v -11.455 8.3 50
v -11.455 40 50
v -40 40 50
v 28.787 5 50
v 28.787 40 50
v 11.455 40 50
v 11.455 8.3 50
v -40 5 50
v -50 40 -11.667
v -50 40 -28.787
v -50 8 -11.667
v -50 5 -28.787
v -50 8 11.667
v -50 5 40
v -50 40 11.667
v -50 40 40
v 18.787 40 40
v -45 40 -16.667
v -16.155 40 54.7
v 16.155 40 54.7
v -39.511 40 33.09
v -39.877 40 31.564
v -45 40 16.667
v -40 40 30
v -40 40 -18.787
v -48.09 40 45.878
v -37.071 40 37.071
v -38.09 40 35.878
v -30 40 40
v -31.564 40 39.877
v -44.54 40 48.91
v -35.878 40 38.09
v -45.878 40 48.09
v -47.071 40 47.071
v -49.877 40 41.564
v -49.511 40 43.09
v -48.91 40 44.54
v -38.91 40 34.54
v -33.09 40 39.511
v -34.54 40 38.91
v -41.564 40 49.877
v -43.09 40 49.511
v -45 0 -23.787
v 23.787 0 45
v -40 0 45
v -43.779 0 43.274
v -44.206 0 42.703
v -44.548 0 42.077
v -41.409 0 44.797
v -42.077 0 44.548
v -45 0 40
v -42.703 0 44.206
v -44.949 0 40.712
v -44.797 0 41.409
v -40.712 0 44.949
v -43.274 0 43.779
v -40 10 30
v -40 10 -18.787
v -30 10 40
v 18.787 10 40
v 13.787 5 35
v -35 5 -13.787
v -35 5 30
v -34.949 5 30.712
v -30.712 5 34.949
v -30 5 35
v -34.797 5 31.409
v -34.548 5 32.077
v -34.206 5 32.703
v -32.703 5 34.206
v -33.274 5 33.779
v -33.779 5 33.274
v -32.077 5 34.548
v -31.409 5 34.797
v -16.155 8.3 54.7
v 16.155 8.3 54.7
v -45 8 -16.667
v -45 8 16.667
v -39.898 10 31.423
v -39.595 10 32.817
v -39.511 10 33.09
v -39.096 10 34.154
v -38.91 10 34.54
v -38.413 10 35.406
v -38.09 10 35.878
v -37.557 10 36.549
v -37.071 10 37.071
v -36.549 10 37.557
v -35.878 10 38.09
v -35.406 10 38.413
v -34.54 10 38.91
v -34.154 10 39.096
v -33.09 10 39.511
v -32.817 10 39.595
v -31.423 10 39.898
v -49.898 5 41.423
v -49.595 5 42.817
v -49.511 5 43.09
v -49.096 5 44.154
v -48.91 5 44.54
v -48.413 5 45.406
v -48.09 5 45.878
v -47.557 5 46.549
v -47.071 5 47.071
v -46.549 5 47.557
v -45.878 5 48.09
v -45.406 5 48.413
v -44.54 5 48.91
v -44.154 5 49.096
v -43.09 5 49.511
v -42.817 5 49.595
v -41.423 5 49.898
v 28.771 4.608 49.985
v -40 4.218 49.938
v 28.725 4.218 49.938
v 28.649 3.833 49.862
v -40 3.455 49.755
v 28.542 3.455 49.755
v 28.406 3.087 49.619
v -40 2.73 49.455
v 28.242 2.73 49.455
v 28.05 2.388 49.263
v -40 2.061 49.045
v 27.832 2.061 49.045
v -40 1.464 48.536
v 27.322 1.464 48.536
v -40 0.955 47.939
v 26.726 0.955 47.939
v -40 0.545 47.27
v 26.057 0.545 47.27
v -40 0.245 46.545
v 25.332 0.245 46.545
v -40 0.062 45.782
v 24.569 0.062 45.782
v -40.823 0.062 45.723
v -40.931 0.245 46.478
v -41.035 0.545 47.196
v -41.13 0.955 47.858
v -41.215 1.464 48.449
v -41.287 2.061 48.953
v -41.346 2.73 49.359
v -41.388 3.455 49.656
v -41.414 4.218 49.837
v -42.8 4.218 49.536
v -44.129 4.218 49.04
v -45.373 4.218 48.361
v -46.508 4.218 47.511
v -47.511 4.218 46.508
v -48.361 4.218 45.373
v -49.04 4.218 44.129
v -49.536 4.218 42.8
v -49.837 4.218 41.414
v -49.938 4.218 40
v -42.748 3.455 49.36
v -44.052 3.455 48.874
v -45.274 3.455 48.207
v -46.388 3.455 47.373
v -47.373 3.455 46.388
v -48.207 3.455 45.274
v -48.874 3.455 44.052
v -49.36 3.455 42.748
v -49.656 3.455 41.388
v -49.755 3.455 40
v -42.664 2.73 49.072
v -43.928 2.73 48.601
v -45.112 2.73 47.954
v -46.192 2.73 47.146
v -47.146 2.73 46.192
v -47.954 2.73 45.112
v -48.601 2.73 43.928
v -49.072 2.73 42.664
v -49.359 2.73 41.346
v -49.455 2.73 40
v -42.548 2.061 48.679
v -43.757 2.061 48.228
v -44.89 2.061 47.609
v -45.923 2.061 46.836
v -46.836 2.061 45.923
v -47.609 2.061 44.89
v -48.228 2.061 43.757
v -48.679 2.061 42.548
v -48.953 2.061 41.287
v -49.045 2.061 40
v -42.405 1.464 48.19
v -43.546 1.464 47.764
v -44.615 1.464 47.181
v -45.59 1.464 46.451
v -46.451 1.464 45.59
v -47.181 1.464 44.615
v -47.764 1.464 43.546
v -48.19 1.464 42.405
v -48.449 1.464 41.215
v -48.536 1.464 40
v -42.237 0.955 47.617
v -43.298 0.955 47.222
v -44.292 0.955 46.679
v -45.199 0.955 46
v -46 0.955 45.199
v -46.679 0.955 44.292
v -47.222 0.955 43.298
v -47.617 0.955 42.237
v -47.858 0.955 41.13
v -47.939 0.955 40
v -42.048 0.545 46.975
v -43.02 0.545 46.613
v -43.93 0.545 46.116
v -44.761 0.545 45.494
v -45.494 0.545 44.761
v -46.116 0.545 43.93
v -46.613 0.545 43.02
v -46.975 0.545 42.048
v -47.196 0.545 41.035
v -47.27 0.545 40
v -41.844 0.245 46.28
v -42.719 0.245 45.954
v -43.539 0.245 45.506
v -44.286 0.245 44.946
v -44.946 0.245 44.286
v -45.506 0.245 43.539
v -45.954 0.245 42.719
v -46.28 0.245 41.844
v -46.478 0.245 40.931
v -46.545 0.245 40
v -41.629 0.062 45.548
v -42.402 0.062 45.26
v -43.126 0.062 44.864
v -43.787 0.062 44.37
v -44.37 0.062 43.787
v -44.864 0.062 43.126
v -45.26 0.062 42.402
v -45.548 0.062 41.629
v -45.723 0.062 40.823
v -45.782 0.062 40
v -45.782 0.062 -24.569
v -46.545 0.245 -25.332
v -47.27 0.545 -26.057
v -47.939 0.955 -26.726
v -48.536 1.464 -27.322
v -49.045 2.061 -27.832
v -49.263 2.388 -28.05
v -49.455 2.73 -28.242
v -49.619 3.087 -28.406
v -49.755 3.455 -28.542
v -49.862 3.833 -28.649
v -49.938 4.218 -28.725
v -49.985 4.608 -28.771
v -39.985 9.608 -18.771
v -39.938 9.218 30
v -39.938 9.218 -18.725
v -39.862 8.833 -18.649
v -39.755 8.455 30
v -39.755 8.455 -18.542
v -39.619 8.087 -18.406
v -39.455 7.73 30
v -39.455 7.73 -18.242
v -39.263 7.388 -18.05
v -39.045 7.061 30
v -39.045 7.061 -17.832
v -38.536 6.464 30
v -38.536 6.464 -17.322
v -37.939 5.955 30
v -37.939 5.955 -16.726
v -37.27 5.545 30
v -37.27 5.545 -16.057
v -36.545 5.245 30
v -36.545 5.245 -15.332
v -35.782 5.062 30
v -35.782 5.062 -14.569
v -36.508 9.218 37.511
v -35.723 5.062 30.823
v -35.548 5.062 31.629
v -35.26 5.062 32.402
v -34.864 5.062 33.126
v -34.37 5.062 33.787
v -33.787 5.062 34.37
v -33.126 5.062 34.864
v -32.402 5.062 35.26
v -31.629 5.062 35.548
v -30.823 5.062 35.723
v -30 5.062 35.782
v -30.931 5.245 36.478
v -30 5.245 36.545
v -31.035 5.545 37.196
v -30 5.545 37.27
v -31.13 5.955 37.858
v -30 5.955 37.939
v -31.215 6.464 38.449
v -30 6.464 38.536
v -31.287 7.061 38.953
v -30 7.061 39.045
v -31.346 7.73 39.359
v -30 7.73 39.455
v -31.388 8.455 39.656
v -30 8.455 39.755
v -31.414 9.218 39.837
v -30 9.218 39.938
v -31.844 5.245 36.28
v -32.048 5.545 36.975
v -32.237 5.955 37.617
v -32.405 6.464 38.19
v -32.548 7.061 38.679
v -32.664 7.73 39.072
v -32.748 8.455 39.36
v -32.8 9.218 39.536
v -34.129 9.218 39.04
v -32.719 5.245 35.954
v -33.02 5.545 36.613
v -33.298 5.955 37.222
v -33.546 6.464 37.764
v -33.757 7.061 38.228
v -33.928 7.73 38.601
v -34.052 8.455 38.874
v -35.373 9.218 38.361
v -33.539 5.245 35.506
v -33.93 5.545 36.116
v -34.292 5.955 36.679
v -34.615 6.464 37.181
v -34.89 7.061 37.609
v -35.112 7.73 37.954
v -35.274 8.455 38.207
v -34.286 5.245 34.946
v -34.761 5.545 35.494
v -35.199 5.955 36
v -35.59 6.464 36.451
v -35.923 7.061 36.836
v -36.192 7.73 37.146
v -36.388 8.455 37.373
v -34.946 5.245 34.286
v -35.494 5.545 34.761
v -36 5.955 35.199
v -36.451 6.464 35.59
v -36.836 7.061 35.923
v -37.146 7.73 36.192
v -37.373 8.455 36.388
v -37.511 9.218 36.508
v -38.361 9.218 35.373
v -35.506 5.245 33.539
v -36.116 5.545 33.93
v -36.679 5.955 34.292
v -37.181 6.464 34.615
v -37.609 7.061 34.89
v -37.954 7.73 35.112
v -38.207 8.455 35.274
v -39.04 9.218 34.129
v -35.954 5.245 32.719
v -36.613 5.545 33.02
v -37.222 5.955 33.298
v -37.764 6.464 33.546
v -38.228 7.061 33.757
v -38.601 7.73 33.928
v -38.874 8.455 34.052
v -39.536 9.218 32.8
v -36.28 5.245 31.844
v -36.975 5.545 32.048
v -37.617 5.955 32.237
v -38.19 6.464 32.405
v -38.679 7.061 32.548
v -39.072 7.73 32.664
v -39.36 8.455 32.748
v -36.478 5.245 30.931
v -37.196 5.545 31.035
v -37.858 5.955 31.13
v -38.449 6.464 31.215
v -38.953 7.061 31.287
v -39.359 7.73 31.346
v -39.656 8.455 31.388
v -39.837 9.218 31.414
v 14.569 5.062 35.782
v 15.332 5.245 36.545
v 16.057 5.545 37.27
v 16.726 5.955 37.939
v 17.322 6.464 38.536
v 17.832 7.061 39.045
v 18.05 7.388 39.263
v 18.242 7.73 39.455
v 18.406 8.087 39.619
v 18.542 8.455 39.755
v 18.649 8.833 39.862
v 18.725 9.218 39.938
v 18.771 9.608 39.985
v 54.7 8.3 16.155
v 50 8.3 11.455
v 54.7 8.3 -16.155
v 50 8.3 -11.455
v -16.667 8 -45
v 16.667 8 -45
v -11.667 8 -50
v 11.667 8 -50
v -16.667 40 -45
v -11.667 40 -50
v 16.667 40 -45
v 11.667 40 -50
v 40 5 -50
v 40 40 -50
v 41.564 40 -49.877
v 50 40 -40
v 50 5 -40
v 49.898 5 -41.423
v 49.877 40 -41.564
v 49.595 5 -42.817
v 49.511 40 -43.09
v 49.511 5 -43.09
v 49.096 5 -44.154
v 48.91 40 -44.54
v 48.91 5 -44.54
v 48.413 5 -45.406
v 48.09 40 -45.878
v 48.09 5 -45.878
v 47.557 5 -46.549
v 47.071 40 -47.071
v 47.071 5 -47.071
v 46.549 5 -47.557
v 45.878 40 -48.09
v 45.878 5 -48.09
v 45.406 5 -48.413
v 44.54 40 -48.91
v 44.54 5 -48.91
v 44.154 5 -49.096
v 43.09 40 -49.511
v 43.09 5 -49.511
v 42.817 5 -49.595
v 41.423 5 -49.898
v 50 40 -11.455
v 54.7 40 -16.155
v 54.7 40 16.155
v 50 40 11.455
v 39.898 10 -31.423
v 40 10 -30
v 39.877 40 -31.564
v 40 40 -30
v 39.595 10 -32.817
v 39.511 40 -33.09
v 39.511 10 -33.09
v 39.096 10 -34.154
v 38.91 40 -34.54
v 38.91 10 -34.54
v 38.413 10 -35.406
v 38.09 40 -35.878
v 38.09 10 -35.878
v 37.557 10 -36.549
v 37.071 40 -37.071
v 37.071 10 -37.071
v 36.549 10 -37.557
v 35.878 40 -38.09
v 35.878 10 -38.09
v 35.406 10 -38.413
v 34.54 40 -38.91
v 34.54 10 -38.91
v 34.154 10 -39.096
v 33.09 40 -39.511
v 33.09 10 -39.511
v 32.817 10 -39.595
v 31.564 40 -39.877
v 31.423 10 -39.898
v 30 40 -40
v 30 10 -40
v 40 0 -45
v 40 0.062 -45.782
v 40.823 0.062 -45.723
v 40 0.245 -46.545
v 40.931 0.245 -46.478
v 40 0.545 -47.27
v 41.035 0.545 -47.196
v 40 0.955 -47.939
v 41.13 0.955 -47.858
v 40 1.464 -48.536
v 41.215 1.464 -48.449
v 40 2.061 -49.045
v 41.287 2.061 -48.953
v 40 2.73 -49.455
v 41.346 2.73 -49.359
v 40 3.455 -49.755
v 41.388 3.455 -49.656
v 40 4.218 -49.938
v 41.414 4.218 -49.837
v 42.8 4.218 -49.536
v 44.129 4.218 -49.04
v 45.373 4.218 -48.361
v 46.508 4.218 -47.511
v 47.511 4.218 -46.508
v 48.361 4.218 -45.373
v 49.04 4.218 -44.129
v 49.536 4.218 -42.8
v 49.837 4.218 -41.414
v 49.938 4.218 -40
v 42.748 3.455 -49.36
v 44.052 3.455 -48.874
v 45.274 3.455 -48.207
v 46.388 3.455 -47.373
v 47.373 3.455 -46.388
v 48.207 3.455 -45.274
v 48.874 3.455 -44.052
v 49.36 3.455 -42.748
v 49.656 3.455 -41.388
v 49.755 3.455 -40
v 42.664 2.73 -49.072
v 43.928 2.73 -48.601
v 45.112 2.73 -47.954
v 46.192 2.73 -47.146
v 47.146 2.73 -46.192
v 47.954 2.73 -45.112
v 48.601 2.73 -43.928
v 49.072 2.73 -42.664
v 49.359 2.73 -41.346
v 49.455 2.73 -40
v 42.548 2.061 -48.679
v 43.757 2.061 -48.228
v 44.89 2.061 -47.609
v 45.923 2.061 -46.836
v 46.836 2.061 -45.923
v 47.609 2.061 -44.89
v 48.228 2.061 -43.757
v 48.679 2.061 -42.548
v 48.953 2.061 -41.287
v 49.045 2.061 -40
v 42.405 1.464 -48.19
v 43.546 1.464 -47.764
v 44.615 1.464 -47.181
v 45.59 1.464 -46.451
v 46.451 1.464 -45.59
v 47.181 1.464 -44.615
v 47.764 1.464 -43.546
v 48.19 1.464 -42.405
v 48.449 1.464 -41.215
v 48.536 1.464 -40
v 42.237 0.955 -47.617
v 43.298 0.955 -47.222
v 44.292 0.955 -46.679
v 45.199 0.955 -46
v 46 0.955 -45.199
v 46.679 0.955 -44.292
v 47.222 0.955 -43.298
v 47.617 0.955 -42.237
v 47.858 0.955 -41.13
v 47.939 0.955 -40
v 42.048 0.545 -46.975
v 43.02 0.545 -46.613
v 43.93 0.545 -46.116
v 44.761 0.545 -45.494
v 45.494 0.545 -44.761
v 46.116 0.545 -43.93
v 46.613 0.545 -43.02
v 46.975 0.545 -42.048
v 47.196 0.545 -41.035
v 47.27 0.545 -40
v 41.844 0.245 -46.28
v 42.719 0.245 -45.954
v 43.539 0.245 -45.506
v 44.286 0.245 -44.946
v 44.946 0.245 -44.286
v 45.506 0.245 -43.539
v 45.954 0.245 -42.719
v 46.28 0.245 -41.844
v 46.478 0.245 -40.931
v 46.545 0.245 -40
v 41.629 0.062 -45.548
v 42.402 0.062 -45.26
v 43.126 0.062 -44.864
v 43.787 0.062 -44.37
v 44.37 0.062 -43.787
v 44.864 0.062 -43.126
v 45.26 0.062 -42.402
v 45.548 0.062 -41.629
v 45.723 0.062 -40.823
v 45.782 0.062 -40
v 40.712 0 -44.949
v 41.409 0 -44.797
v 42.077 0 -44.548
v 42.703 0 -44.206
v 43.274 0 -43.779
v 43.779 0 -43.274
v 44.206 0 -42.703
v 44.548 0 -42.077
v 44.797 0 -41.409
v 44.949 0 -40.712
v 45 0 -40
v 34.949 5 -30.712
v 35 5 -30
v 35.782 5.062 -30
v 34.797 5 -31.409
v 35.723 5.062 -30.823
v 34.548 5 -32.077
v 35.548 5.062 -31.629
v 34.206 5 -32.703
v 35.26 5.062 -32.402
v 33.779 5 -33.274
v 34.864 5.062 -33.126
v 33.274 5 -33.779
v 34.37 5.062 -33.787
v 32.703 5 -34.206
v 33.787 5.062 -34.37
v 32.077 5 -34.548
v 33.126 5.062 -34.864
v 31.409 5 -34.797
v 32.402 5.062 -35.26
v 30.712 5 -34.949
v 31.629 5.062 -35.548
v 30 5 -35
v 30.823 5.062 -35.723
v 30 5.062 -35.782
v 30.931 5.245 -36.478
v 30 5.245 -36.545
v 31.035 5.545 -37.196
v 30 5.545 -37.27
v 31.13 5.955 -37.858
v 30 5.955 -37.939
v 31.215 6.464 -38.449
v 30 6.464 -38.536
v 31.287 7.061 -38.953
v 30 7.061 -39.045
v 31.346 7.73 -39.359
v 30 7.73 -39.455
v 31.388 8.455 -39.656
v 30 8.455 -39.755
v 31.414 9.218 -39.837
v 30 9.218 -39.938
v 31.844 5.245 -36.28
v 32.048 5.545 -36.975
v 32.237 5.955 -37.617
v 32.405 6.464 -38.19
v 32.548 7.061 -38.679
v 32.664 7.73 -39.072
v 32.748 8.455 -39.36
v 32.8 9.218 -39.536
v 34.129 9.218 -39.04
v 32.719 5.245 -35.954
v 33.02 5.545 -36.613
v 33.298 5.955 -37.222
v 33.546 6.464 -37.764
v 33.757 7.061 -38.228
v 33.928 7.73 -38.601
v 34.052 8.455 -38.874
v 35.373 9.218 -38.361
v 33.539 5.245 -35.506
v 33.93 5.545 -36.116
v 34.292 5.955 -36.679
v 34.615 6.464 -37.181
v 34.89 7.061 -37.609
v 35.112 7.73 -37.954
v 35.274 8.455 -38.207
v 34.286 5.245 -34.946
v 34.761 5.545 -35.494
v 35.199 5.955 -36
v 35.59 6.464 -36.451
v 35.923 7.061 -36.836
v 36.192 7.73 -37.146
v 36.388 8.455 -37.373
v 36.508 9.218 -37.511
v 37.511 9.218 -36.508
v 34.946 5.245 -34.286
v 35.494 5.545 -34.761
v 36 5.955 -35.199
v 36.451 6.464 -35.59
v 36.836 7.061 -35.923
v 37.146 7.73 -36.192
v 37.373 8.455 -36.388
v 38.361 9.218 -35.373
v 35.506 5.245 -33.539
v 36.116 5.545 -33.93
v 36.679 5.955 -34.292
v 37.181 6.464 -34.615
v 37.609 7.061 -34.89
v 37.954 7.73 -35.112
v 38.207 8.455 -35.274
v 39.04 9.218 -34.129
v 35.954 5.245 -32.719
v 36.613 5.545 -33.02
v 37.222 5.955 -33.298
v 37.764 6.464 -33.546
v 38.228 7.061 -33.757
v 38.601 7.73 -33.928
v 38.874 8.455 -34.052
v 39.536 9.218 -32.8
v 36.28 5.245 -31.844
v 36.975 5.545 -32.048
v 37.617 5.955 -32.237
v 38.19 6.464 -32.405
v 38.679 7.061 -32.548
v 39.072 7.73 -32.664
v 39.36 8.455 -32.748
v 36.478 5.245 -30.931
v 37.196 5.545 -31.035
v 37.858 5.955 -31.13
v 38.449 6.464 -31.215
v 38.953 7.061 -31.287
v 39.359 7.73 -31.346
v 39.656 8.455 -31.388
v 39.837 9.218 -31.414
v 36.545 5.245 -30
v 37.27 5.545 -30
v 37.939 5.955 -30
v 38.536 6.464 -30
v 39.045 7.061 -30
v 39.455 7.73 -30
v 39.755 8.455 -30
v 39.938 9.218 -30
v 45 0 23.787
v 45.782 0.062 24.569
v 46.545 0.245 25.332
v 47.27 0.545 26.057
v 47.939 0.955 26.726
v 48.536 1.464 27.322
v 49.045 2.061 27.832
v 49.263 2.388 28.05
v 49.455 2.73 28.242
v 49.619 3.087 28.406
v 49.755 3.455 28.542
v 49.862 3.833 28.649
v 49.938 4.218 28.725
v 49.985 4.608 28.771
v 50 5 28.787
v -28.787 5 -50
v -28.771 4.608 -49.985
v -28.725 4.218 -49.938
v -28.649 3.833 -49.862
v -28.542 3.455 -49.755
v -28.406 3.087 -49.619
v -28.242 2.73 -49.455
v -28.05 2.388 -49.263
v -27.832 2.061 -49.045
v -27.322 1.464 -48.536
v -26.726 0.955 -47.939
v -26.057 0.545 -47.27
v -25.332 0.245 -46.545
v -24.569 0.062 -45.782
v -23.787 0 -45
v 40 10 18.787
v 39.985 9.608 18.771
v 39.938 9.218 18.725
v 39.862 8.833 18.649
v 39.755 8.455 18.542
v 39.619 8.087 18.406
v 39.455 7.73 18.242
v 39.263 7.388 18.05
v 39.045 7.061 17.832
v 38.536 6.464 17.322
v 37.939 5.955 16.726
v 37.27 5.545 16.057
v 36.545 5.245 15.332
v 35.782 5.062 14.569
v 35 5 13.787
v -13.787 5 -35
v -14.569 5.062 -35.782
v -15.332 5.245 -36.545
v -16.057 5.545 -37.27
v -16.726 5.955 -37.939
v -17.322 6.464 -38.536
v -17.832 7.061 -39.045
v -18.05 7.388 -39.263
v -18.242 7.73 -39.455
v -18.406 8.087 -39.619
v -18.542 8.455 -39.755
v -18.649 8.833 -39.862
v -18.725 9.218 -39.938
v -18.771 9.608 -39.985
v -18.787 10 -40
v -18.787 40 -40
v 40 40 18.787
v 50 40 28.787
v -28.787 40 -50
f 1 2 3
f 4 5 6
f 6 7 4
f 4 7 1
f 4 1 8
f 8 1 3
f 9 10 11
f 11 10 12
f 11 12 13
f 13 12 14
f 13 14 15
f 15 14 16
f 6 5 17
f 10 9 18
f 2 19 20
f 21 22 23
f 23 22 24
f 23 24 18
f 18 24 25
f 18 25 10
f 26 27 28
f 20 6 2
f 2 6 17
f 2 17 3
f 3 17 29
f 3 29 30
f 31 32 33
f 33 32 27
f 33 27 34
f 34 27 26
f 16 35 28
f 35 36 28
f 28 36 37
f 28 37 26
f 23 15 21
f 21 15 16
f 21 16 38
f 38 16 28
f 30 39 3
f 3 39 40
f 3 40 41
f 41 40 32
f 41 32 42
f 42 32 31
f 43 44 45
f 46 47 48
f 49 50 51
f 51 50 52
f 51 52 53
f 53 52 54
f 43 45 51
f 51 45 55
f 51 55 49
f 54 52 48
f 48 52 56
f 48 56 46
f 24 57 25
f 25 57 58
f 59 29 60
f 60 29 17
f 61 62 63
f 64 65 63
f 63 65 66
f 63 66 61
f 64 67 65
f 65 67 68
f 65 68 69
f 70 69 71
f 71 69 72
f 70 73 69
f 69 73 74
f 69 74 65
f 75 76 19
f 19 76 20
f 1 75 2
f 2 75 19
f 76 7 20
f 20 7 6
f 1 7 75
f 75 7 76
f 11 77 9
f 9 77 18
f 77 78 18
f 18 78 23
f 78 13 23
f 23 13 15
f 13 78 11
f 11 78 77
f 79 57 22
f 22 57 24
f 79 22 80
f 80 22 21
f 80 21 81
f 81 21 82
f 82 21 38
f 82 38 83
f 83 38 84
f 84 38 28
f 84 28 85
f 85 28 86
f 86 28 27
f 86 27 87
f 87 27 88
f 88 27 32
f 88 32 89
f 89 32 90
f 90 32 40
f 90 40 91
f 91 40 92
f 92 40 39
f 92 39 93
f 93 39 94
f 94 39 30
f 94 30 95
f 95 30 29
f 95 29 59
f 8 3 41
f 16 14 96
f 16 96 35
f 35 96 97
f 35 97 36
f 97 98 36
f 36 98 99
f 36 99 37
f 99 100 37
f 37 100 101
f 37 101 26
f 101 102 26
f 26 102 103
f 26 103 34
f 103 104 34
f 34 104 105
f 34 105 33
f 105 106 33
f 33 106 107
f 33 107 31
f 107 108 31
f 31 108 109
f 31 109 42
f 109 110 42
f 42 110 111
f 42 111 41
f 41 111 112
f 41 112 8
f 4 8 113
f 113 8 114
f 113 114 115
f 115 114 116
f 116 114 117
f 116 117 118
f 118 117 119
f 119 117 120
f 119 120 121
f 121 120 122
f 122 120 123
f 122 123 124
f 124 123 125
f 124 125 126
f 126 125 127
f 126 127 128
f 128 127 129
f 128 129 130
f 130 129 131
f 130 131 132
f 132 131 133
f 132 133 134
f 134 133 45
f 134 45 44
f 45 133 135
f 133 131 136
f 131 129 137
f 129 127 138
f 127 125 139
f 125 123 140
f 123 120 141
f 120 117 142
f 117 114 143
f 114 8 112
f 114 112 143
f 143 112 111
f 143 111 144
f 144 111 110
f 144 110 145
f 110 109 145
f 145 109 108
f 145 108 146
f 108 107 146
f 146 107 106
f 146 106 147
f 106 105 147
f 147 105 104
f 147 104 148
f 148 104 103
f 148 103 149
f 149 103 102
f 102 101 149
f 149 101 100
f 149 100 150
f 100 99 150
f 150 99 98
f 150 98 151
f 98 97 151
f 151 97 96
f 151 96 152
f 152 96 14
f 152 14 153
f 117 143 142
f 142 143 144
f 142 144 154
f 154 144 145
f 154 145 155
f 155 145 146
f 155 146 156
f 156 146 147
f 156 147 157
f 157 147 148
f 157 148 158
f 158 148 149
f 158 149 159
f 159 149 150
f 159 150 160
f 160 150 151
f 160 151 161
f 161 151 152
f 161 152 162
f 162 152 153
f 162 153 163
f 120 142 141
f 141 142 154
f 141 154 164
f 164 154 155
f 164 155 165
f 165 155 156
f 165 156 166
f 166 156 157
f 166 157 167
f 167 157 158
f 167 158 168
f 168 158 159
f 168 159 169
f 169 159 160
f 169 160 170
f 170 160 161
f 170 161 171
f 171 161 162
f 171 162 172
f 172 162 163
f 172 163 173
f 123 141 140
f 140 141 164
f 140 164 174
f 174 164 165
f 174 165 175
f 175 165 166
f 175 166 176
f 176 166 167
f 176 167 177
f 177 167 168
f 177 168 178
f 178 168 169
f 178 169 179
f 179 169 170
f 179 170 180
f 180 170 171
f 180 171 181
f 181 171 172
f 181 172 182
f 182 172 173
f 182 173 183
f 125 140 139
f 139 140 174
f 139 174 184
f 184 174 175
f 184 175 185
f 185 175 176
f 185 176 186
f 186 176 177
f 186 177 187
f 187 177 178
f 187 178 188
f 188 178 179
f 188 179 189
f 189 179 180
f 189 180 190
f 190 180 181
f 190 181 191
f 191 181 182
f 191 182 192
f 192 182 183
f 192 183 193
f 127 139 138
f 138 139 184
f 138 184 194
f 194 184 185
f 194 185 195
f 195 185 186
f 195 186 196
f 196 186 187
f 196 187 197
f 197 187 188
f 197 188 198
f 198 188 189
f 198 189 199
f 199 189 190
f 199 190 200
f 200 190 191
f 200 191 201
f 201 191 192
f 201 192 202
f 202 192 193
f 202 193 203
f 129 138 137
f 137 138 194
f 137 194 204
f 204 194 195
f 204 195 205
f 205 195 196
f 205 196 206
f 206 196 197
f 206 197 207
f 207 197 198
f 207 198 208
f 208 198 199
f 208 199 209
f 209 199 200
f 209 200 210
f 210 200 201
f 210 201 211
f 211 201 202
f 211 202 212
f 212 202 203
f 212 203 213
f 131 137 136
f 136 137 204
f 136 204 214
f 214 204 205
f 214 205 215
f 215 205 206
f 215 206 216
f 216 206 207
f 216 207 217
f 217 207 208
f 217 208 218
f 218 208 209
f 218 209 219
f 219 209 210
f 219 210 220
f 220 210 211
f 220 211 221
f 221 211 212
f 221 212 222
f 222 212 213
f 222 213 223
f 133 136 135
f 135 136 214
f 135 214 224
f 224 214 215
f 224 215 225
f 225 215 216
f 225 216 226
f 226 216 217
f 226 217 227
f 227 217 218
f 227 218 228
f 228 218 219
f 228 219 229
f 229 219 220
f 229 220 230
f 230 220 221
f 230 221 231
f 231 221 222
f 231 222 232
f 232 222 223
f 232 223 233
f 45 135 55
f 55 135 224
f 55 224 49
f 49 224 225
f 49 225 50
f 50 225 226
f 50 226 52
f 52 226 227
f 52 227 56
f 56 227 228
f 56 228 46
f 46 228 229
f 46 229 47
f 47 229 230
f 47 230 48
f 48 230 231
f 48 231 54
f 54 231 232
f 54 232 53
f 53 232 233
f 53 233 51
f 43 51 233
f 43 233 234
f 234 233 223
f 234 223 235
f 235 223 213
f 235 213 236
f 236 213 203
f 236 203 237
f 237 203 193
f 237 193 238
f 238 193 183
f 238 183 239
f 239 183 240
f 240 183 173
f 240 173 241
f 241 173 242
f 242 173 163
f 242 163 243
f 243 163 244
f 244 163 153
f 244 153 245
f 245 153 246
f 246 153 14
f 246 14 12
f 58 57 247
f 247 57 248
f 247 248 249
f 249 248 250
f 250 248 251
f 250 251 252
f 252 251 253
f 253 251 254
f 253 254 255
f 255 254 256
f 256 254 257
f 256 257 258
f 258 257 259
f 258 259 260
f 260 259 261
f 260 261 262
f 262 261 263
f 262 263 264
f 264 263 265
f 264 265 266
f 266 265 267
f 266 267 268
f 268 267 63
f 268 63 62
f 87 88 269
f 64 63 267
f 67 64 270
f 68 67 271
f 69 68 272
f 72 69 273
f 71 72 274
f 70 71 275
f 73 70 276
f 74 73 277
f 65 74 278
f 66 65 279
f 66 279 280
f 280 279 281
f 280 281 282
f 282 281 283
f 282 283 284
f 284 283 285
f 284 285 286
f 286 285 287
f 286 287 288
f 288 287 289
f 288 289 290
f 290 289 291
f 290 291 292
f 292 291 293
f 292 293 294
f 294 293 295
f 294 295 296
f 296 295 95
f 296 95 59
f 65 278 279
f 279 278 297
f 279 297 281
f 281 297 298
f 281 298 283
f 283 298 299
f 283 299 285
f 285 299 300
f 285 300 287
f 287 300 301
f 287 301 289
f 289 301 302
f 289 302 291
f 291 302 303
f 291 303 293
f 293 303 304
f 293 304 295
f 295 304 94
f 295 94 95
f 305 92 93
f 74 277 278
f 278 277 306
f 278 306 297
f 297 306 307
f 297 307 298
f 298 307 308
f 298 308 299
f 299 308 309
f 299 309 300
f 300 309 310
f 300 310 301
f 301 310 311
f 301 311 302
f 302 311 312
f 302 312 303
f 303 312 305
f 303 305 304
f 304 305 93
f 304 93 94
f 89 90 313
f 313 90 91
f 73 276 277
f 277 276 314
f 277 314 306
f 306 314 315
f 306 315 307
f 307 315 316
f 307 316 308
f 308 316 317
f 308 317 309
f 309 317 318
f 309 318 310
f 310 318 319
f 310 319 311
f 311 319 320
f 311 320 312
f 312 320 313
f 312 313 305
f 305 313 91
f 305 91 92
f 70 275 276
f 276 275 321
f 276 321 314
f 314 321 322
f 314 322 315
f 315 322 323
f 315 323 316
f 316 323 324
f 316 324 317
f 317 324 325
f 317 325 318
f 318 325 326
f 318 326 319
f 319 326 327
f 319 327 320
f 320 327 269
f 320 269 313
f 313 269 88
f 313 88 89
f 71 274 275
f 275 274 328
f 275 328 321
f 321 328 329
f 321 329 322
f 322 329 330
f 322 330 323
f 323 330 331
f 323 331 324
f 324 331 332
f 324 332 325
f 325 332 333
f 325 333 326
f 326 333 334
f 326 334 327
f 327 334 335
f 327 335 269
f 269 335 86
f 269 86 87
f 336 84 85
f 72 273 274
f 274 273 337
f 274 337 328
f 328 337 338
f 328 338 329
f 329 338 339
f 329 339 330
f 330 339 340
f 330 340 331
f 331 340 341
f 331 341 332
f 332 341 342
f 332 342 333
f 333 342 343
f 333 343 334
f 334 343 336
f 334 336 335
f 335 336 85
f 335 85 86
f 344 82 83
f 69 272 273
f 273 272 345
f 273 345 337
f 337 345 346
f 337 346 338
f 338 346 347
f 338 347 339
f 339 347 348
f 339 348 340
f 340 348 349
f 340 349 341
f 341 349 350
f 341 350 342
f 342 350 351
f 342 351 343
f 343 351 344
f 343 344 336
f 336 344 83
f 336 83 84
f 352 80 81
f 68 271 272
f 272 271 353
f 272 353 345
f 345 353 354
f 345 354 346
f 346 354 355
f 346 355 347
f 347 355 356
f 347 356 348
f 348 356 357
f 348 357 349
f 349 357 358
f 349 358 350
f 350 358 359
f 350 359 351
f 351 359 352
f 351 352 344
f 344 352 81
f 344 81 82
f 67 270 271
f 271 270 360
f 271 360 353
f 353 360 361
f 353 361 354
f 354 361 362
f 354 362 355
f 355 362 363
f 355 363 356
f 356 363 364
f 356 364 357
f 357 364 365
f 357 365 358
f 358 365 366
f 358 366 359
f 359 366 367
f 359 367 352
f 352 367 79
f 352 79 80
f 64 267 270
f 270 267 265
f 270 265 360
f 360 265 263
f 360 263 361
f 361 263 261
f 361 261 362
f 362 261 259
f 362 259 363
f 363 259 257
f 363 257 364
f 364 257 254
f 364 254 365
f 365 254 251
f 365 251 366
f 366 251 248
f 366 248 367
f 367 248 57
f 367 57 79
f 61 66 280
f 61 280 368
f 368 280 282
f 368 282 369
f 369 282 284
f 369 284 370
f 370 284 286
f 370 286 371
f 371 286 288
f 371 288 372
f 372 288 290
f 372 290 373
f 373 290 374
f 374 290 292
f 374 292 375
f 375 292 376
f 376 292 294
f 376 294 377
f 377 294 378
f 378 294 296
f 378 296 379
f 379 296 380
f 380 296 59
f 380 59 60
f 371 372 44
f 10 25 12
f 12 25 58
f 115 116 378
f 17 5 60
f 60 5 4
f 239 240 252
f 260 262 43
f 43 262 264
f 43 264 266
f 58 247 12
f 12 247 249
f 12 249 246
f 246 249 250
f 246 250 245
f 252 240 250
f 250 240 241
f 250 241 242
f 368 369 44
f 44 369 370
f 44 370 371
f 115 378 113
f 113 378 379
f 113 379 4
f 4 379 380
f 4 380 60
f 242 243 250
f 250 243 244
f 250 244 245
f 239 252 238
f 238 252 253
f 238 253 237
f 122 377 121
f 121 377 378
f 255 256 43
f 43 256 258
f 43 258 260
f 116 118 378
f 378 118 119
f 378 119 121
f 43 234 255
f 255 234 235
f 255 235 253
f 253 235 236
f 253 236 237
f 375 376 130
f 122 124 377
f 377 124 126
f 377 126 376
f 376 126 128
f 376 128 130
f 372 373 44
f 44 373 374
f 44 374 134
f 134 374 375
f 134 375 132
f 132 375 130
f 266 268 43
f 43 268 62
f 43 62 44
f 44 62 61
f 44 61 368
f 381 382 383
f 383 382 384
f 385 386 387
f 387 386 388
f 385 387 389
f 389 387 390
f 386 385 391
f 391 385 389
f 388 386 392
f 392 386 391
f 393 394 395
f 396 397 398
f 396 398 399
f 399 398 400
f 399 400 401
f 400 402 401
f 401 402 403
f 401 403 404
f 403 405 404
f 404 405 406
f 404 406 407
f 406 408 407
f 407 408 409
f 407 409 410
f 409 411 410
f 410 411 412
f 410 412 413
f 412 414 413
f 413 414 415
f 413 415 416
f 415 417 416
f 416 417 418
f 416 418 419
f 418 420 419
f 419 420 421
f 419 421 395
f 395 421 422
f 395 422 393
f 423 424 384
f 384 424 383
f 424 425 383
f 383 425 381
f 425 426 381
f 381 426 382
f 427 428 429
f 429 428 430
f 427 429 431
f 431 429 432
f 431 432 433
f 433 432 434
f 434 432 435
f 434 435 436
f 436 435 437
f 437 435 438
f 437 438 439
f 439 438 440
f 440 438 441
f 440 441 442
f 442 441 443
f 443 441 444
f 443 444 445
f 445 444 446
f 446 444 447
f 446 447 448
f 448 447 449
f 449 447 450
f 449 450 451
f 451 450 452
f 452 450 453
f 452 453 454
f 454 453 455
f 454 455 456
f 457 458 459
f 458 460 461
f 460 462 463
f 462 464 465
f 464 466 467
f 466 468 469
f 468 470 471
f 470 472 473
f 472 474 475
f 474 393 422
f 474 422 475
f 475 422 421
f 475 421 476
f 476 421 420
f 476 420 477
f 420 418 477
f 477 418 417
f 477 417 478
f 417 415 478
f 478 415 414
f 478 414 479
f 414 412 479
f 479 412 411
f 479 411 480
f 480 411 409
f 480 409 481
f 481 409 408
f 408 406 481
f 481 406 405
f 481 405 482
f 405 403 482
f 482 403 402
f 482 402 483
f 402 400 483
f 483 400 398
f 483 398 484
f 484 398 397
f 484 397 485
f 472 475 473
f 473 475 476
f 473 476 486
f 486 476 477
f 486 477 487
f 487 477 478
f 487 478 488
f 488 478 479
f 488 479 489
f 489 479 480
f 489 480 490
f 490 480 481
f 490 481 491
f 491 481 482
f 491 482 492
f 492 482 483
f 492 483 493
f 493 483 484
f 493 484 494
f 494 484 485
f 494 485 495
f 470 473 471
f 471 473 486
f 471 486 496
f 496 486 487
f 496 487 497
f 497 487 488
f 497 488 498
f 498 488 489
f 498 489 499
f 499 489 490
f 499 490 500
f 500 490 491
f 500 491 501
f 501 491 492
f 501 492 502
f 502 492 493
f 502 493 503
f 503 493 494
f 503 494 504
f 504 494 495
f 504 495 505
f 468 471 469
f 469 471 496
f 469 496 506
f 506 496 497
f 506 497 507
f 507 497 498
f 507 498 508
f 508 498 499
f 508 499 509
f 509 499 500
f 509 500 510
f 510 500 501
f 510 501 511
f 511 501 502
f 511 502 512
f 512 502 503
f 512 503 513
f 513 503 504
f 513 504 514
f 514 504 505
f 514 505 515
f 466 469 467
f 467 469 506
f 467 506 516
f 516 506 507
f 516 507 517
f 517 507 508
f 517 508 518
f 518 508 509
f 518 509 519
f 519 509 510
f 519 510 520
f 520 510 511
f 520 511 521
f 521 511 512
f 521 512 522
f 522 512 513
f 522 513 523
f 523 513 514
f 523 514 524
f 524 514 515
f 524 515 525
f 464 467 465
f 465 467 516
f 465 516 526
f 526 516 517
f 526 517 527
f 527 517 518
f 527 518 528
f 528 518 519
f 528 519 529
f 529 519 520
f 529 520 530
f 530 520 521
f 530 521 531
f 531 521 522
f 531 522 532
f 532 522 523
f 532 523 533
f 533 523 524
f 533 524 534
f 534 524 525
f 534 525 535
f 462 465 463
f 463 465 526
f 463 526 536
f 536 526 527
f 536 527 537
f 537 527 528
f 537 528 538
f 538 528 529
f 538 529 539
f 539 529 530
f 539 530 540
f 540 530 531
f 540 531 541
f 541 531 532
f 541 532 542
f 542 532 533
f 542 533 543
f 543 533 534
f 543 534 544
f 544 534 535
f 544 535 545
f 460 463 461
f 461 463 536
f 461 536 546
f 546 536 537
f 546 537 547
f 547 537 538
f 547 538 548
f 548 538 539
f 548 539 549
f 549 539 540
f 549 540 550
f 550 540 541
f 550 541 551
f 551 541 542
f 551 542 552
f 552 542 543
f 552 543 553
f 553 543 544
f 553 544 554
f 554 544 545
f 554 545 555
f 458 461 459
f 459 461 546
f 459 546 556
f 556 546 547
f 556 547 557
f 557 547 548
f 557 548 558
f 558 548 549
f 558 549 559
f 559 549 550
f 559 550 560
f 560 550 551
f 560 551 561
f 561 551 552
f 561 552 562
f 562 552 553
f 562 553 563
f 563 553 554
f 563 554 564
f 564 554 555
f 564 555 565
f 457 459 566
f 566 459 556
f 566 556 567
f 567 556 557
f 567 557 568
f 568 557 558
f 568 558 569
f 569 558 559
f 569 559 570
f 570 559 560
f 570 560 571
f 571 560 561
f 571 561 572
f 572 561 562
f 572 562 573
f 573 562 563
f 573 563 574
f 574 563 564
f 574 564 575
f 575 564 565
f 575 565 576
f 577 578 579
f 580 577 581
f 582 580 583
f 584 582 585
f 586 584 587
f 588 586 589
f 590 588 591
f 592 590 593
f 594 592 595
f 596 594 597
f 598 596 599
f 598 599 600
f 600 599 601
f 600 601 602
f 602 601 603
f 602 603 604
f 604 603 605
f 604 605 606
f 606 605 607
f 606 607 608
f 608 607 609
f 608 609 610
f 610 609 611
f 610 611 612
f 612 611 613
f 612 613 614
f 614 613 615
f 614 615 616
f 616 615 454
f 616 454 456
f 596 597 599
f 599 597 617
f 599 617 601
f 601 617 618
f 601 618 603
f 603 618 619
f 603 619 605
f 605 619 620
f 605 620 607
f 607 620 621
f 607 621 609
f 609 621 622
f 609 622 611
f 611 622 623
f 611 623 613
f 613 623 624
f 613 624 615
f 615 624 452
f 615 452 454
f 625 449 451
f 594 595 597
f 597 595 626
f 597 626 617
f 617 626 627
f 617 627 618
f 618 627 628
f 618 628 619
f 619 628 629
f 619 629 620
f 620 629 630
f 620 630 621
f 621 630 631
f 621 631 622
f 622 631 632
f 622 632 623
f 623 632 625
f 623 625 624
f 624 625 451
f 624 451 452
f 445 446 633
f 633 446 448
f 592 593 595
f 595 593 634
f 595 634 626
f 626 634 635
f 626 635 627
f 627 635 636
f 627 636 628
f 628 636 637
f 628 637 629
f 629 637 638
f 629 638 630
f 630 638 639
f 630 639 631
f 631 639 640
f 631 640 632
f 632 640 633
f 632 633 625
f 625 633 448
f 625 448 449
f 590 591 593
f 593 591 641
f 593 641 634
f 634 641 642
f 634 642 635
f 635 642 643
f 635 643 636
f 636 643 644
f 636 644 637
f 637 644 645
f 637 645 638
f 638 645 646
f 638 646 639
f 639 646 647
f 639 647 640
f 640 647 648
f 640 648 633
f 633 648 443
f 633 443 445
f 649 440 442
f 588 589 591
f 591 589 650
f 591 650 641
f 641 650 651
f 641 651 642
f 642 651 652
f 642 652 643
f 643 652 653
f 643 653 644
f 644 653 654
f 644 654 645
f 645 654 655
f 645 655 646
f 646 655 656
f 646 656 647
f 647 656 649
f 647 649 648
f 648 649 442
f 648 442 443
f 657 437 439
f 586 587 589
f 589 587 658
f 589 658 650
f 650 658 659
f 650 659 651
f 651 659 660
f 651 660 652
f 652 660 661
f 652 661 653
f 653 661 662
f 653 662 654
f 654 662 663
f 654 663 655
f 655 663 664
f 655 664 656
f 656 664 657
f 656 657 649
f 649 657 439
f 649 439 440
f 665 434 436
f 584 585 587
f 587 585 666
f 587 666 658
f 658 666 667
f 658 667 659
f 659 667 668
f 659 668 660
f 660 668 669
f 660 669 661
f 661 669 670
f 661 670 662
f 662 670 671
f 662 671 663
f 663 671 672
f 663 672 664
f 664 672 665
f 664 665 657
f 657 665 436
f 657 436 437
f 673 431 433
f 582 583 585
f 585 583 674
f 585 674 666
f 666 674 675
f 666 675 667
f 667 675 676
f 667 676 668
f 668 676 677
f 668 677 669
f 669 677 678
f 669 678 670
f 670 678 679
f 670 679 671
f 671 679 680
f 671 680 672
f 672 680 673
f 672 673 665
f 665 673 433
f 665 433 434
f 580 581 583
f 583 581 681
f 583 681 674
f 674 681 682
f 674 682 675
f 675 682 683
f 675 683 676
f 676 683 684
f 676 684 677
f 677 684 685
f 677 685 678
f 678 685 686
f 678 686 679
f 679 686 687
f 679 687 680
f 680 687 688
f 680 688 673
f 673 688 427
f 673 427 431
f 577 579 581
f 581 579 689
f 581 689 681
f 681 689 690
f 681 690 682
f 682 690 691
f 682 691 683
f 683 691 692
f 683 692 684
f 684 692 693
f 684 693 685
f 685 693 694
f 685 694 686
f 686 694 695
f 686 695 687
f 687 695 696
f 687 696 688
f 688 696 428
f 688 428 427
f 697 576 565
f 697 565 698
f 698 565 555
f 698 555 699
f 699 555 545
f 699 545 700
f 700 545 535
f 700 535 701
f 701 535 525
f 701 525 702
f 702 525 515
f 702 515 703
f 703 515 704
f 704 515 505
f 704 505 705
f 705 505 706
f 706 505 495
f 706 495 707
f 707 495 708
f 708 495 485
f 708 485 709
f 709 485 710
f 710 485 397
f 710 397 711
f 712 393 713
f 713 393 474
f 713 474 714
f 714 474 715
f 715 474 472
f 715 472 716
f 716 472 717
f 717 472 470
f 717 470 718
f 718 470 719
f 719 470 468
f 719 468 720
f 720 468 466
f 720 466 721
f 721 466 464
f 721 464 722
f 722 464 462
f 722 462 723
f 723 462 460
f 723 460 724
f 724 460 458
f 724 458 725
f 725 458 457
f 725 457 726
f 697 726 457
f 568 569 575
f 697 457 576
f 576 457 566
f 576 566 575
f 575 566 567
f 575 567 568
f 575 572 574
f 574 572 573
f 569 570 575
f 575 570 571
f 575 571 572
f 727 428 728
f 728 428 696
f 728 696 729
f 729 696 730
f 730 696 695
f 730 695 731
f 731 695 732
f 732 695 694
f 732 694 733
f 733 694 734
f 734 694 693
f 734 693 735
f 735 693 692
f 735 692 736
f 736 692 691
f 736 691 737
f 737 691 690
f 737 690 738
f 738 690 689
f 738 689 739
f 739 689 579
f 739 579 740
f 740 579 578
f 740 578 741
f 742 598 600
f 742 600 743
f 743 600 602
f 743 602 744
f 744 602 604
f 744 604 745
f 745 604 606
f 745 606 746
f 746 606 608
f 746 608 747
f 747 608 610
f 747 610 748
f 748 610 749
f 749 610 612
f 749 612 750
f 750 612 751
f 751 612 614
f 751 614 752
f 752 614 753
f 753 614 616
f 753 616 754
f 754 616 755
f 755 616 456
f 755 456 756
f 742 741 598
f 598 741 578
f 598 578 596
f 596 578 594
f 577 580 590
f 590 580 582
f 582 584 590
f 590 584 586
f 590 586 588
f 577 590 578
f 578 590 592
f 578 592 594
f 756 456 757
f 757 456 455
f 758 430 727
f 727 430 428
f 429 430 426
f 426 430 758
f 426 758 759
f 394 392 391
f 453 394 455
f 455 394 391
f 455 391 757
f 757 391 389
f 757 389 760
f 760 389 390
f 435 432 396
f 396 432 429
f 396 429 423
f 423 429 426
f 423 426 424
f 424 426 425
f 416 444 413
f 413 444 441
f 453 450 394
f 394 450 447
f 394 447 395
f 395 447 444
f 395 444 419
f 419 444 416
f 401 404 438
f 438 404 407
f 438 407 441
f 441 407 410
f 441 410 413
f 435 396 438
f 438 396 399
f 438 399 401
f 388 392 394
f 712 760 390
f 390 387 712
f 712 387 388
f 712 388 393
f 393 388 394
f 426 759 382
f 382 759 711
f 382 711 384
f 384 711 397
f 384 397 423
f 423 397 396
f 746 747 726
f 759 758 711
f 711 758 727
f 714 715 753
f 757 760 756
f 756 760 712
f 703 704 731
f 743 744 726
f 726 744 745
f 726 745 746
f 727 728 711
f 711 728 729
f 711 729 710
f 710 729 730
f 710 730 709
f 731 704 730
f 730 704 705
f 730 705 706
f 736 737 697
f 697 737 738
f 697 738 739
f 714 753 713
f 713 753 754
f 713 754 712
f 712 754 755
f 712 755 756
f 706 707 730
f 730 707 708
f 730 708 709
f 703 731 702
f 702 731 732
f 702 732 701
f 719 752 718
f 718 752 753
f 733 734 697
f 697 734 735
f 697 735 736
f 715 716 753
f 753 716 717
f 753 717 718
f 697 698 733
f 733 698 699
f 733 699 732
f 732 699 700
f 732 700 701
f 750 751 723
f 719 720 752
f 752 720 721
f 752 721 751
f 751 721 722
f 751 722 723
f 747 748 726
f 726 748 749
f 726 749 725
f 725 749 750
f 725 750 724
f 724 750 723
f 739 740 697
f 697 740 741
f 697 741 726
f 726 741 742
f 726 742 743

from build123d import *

# Parameters (mm, degrees)
SKETCH1_W                    = 100
SKETCH1_H                    = 100
BOSS_EXTRUDE1_DEPTH          = 40
SHELL1_T                     = -10
SHELL1_THICKNESS_2_FACE_W    = 80
SHELL1_THICKNESS_2_FACE_H    = 80
SHELL1_THICKNESS_2_DEPTH     = 5
CUT_EXTRUDE1_DEPTH           = 32
BOSS_EXTRUDE2_DEPTH          = 31.7
CUT_EXTRUDE2_DEPTH           = 32
BOSS_EXTRUDE3_DEPTH          = 31.7
FILLET1_R                    = 10
FILLET2_R                    = 5
CUT_EXTRUDE_THIN1_DEPTH      = 88.087197681
CUT_EXTRUDE_THIN1_DEPTH_BACK = 88.087197681


with BuildPart() as part:
    # Sketch1 → Boss-Extrude1 (new body)
    with BuildSketch(Plane(origin=(0, 0, 0), x_dir=(1, 0, 0), z_dir=(0, 1, 0))):
        Rectangle(SKETCH1_W, SKETCH1_H)
    extrude(amount=BOSS_EXTRUDE1_DEPTH)

    # Shell1
    shell1_openings = [part.faces().sort_by_distance(p)[0] for p in [
        (0, 40, 0),
    ]]
    offset(amount=SHELL1_T, openings=shell1_openings, kind=Kind.INTERSECTION)

    # Shell1 thickness 2 face (on inner face of the shell) → Shell1 thickness 2 (cut)
    with BuildSketch(Plane(origin=(0, 10, 0), x_dir=(0, 0, -1), z_dir=(0, -1, 0))):
        Rectangle(SHELL1_THICKNESS_2_FACE_W, SHELL1_THICKNESS_2_FACE_H)
    extrude(amount=SHELL1_THICKNESS_2_DEPTH, mode=Mode.SUBTRACT)

    # Sketch2 → Cut-Extrude1 (cut)
    with BuildSketch(Plane(origin=(0, 40, 0), x_dir=(1, 0, 0), z_dir=(0, 1, 0))):
        Polygon((-11.666666667, 50), (-16.666666667, 45), (16.666666667, 45), (11.666666667, 50), align=None)
    extrude(amount=-CUT_EXTRUDE1_DEPTH, mode=Mode.SUBTRACT)

    # Sketch3 → Boss-Extrude2 (add)
    with BuildSketch(Plane(origin=(0, 40, 0), x_dir=(1, 0, 0), z_dir=(0, 1, 0))):
        Polygon((-11.454534632, -50), (-16.154534632, -54.7), (16.154534632, -54.7), (11.454534632, -50), align=None)
    extrude(amount=-BOSS_EXTRUDE2_DEPTH)

    # Sketch4 → Cut-Extrude2 (cut)
    with BuildSketch(Plane(origin=(0, 40, 0), x_dir=(1, 0, 0), z_dir=(0, 1, 0))):
        Polygon((-45, 16.666666667), (-45, -16.666666667), (-50, -11.666666667), (-50, 11.666666667), align=None)
    extrude(amount=-CUT_EXTRUDE2_DEPTH, mode=Mode.SUBTRACT)

    # Sketch5 → Boss-Extrude3 (add)
    with BuildSketch(Plane(origin=(0, 40, 0), x_dir=(1, 0, 0), z_dir=(0, 1, 0))):
        Polygon((50, 11.454534632), (50, -11.454534632), (54.7, -16.154534632), (54.7, 16.154534632), align=None)
    extrude(amount=-BOSS_EXTRUDE3_DEPTH)

    # Fillet1
    fillet1_edges = [part.edges().sort_by_distance(p)[0] for p in [
        (40, 22.5, 40),
        (40, 22.5, -40),
        (-40, 22.5, -40),
        (-40, 22.5, 40),
        (50, 20, 50),
        (-50, 20, 50),
        (-50, 20, -50),
        (50, 20, -50),
    ]]
    fillet(fillet1_edges, radius=FILLET1_R)

    # Fillet2
    fillet2_edges = [part.edges().sort_by_distance(p)[0] for p in [
        (-37.071067812, 5, -37.071067812),
        (37.071067812, 5, -37.071067812),
        (0, 0, -50),
        (50, 0, 0),
        (0, 0, 50),
        (-50, 0, 0),
        (47.071067812, 0, 47.071067812),
        (-47.071067812, 0, 47.071067812),
        (-47.071067812, 0, -47.071067812),
        (47.071067812, 0, -47.071067812),
        (40, 5, 0),
        (0, 5, -40),
        (-40, 5, 0),
        (0, 5, 40),
        (37.071067812, 5, 37.071067812),
        (-37.071067812, 5, 37.071067812),
    ]]
    fillet(fillet2_edges, radius=FILLET2_R)

    # Sketch6 → Cut-Extrude-Thin1 (cut, two sides: drawn at the far end of the back side and taken through both)
    with BuildSketch(Plane(origin=(0, 40, 0), x_dir=(1, 0, 0), z_dir=(0, 1, 0)).offset(-CUT_EXTRUDE_THIN1_DEPTH_BACK)):
        Polygon((-57.67766953, 36.464466094), (36.464466094, -57.67766953), (57.67766953, -36.464466094), (-36.464466094, 57.67766953), align=None)
    extrude(amount=CUT_EXTRUDE_THIN1_DEPTH + CUT_EXTRUDE_THIN1_DEPTH_BACK, mode=Mode.SUBTRACT)


with BuildPart() as cut_extrude_thin1_piece_1:
    # of the separate pieces the step leaves, piece 1, a body of its own (cut_extrude_thin1_pieces)
    add(part.part.solids().sort_by_distance((-28.786796564, 5, -50))[0])


with BuildPart() as cut_extrude_thin1_piece_2:
    # of the separate pieces the step leaves, piece 2, a body of its own (cut_extrude_thin1_pieces)
    add(part.part.solids().sort_by_distance((-40, 40, 50))[0])


solid = Compound([cut_extrude_thin1_piece_1.part, cut_extrude_thin1_piece_2.part])
